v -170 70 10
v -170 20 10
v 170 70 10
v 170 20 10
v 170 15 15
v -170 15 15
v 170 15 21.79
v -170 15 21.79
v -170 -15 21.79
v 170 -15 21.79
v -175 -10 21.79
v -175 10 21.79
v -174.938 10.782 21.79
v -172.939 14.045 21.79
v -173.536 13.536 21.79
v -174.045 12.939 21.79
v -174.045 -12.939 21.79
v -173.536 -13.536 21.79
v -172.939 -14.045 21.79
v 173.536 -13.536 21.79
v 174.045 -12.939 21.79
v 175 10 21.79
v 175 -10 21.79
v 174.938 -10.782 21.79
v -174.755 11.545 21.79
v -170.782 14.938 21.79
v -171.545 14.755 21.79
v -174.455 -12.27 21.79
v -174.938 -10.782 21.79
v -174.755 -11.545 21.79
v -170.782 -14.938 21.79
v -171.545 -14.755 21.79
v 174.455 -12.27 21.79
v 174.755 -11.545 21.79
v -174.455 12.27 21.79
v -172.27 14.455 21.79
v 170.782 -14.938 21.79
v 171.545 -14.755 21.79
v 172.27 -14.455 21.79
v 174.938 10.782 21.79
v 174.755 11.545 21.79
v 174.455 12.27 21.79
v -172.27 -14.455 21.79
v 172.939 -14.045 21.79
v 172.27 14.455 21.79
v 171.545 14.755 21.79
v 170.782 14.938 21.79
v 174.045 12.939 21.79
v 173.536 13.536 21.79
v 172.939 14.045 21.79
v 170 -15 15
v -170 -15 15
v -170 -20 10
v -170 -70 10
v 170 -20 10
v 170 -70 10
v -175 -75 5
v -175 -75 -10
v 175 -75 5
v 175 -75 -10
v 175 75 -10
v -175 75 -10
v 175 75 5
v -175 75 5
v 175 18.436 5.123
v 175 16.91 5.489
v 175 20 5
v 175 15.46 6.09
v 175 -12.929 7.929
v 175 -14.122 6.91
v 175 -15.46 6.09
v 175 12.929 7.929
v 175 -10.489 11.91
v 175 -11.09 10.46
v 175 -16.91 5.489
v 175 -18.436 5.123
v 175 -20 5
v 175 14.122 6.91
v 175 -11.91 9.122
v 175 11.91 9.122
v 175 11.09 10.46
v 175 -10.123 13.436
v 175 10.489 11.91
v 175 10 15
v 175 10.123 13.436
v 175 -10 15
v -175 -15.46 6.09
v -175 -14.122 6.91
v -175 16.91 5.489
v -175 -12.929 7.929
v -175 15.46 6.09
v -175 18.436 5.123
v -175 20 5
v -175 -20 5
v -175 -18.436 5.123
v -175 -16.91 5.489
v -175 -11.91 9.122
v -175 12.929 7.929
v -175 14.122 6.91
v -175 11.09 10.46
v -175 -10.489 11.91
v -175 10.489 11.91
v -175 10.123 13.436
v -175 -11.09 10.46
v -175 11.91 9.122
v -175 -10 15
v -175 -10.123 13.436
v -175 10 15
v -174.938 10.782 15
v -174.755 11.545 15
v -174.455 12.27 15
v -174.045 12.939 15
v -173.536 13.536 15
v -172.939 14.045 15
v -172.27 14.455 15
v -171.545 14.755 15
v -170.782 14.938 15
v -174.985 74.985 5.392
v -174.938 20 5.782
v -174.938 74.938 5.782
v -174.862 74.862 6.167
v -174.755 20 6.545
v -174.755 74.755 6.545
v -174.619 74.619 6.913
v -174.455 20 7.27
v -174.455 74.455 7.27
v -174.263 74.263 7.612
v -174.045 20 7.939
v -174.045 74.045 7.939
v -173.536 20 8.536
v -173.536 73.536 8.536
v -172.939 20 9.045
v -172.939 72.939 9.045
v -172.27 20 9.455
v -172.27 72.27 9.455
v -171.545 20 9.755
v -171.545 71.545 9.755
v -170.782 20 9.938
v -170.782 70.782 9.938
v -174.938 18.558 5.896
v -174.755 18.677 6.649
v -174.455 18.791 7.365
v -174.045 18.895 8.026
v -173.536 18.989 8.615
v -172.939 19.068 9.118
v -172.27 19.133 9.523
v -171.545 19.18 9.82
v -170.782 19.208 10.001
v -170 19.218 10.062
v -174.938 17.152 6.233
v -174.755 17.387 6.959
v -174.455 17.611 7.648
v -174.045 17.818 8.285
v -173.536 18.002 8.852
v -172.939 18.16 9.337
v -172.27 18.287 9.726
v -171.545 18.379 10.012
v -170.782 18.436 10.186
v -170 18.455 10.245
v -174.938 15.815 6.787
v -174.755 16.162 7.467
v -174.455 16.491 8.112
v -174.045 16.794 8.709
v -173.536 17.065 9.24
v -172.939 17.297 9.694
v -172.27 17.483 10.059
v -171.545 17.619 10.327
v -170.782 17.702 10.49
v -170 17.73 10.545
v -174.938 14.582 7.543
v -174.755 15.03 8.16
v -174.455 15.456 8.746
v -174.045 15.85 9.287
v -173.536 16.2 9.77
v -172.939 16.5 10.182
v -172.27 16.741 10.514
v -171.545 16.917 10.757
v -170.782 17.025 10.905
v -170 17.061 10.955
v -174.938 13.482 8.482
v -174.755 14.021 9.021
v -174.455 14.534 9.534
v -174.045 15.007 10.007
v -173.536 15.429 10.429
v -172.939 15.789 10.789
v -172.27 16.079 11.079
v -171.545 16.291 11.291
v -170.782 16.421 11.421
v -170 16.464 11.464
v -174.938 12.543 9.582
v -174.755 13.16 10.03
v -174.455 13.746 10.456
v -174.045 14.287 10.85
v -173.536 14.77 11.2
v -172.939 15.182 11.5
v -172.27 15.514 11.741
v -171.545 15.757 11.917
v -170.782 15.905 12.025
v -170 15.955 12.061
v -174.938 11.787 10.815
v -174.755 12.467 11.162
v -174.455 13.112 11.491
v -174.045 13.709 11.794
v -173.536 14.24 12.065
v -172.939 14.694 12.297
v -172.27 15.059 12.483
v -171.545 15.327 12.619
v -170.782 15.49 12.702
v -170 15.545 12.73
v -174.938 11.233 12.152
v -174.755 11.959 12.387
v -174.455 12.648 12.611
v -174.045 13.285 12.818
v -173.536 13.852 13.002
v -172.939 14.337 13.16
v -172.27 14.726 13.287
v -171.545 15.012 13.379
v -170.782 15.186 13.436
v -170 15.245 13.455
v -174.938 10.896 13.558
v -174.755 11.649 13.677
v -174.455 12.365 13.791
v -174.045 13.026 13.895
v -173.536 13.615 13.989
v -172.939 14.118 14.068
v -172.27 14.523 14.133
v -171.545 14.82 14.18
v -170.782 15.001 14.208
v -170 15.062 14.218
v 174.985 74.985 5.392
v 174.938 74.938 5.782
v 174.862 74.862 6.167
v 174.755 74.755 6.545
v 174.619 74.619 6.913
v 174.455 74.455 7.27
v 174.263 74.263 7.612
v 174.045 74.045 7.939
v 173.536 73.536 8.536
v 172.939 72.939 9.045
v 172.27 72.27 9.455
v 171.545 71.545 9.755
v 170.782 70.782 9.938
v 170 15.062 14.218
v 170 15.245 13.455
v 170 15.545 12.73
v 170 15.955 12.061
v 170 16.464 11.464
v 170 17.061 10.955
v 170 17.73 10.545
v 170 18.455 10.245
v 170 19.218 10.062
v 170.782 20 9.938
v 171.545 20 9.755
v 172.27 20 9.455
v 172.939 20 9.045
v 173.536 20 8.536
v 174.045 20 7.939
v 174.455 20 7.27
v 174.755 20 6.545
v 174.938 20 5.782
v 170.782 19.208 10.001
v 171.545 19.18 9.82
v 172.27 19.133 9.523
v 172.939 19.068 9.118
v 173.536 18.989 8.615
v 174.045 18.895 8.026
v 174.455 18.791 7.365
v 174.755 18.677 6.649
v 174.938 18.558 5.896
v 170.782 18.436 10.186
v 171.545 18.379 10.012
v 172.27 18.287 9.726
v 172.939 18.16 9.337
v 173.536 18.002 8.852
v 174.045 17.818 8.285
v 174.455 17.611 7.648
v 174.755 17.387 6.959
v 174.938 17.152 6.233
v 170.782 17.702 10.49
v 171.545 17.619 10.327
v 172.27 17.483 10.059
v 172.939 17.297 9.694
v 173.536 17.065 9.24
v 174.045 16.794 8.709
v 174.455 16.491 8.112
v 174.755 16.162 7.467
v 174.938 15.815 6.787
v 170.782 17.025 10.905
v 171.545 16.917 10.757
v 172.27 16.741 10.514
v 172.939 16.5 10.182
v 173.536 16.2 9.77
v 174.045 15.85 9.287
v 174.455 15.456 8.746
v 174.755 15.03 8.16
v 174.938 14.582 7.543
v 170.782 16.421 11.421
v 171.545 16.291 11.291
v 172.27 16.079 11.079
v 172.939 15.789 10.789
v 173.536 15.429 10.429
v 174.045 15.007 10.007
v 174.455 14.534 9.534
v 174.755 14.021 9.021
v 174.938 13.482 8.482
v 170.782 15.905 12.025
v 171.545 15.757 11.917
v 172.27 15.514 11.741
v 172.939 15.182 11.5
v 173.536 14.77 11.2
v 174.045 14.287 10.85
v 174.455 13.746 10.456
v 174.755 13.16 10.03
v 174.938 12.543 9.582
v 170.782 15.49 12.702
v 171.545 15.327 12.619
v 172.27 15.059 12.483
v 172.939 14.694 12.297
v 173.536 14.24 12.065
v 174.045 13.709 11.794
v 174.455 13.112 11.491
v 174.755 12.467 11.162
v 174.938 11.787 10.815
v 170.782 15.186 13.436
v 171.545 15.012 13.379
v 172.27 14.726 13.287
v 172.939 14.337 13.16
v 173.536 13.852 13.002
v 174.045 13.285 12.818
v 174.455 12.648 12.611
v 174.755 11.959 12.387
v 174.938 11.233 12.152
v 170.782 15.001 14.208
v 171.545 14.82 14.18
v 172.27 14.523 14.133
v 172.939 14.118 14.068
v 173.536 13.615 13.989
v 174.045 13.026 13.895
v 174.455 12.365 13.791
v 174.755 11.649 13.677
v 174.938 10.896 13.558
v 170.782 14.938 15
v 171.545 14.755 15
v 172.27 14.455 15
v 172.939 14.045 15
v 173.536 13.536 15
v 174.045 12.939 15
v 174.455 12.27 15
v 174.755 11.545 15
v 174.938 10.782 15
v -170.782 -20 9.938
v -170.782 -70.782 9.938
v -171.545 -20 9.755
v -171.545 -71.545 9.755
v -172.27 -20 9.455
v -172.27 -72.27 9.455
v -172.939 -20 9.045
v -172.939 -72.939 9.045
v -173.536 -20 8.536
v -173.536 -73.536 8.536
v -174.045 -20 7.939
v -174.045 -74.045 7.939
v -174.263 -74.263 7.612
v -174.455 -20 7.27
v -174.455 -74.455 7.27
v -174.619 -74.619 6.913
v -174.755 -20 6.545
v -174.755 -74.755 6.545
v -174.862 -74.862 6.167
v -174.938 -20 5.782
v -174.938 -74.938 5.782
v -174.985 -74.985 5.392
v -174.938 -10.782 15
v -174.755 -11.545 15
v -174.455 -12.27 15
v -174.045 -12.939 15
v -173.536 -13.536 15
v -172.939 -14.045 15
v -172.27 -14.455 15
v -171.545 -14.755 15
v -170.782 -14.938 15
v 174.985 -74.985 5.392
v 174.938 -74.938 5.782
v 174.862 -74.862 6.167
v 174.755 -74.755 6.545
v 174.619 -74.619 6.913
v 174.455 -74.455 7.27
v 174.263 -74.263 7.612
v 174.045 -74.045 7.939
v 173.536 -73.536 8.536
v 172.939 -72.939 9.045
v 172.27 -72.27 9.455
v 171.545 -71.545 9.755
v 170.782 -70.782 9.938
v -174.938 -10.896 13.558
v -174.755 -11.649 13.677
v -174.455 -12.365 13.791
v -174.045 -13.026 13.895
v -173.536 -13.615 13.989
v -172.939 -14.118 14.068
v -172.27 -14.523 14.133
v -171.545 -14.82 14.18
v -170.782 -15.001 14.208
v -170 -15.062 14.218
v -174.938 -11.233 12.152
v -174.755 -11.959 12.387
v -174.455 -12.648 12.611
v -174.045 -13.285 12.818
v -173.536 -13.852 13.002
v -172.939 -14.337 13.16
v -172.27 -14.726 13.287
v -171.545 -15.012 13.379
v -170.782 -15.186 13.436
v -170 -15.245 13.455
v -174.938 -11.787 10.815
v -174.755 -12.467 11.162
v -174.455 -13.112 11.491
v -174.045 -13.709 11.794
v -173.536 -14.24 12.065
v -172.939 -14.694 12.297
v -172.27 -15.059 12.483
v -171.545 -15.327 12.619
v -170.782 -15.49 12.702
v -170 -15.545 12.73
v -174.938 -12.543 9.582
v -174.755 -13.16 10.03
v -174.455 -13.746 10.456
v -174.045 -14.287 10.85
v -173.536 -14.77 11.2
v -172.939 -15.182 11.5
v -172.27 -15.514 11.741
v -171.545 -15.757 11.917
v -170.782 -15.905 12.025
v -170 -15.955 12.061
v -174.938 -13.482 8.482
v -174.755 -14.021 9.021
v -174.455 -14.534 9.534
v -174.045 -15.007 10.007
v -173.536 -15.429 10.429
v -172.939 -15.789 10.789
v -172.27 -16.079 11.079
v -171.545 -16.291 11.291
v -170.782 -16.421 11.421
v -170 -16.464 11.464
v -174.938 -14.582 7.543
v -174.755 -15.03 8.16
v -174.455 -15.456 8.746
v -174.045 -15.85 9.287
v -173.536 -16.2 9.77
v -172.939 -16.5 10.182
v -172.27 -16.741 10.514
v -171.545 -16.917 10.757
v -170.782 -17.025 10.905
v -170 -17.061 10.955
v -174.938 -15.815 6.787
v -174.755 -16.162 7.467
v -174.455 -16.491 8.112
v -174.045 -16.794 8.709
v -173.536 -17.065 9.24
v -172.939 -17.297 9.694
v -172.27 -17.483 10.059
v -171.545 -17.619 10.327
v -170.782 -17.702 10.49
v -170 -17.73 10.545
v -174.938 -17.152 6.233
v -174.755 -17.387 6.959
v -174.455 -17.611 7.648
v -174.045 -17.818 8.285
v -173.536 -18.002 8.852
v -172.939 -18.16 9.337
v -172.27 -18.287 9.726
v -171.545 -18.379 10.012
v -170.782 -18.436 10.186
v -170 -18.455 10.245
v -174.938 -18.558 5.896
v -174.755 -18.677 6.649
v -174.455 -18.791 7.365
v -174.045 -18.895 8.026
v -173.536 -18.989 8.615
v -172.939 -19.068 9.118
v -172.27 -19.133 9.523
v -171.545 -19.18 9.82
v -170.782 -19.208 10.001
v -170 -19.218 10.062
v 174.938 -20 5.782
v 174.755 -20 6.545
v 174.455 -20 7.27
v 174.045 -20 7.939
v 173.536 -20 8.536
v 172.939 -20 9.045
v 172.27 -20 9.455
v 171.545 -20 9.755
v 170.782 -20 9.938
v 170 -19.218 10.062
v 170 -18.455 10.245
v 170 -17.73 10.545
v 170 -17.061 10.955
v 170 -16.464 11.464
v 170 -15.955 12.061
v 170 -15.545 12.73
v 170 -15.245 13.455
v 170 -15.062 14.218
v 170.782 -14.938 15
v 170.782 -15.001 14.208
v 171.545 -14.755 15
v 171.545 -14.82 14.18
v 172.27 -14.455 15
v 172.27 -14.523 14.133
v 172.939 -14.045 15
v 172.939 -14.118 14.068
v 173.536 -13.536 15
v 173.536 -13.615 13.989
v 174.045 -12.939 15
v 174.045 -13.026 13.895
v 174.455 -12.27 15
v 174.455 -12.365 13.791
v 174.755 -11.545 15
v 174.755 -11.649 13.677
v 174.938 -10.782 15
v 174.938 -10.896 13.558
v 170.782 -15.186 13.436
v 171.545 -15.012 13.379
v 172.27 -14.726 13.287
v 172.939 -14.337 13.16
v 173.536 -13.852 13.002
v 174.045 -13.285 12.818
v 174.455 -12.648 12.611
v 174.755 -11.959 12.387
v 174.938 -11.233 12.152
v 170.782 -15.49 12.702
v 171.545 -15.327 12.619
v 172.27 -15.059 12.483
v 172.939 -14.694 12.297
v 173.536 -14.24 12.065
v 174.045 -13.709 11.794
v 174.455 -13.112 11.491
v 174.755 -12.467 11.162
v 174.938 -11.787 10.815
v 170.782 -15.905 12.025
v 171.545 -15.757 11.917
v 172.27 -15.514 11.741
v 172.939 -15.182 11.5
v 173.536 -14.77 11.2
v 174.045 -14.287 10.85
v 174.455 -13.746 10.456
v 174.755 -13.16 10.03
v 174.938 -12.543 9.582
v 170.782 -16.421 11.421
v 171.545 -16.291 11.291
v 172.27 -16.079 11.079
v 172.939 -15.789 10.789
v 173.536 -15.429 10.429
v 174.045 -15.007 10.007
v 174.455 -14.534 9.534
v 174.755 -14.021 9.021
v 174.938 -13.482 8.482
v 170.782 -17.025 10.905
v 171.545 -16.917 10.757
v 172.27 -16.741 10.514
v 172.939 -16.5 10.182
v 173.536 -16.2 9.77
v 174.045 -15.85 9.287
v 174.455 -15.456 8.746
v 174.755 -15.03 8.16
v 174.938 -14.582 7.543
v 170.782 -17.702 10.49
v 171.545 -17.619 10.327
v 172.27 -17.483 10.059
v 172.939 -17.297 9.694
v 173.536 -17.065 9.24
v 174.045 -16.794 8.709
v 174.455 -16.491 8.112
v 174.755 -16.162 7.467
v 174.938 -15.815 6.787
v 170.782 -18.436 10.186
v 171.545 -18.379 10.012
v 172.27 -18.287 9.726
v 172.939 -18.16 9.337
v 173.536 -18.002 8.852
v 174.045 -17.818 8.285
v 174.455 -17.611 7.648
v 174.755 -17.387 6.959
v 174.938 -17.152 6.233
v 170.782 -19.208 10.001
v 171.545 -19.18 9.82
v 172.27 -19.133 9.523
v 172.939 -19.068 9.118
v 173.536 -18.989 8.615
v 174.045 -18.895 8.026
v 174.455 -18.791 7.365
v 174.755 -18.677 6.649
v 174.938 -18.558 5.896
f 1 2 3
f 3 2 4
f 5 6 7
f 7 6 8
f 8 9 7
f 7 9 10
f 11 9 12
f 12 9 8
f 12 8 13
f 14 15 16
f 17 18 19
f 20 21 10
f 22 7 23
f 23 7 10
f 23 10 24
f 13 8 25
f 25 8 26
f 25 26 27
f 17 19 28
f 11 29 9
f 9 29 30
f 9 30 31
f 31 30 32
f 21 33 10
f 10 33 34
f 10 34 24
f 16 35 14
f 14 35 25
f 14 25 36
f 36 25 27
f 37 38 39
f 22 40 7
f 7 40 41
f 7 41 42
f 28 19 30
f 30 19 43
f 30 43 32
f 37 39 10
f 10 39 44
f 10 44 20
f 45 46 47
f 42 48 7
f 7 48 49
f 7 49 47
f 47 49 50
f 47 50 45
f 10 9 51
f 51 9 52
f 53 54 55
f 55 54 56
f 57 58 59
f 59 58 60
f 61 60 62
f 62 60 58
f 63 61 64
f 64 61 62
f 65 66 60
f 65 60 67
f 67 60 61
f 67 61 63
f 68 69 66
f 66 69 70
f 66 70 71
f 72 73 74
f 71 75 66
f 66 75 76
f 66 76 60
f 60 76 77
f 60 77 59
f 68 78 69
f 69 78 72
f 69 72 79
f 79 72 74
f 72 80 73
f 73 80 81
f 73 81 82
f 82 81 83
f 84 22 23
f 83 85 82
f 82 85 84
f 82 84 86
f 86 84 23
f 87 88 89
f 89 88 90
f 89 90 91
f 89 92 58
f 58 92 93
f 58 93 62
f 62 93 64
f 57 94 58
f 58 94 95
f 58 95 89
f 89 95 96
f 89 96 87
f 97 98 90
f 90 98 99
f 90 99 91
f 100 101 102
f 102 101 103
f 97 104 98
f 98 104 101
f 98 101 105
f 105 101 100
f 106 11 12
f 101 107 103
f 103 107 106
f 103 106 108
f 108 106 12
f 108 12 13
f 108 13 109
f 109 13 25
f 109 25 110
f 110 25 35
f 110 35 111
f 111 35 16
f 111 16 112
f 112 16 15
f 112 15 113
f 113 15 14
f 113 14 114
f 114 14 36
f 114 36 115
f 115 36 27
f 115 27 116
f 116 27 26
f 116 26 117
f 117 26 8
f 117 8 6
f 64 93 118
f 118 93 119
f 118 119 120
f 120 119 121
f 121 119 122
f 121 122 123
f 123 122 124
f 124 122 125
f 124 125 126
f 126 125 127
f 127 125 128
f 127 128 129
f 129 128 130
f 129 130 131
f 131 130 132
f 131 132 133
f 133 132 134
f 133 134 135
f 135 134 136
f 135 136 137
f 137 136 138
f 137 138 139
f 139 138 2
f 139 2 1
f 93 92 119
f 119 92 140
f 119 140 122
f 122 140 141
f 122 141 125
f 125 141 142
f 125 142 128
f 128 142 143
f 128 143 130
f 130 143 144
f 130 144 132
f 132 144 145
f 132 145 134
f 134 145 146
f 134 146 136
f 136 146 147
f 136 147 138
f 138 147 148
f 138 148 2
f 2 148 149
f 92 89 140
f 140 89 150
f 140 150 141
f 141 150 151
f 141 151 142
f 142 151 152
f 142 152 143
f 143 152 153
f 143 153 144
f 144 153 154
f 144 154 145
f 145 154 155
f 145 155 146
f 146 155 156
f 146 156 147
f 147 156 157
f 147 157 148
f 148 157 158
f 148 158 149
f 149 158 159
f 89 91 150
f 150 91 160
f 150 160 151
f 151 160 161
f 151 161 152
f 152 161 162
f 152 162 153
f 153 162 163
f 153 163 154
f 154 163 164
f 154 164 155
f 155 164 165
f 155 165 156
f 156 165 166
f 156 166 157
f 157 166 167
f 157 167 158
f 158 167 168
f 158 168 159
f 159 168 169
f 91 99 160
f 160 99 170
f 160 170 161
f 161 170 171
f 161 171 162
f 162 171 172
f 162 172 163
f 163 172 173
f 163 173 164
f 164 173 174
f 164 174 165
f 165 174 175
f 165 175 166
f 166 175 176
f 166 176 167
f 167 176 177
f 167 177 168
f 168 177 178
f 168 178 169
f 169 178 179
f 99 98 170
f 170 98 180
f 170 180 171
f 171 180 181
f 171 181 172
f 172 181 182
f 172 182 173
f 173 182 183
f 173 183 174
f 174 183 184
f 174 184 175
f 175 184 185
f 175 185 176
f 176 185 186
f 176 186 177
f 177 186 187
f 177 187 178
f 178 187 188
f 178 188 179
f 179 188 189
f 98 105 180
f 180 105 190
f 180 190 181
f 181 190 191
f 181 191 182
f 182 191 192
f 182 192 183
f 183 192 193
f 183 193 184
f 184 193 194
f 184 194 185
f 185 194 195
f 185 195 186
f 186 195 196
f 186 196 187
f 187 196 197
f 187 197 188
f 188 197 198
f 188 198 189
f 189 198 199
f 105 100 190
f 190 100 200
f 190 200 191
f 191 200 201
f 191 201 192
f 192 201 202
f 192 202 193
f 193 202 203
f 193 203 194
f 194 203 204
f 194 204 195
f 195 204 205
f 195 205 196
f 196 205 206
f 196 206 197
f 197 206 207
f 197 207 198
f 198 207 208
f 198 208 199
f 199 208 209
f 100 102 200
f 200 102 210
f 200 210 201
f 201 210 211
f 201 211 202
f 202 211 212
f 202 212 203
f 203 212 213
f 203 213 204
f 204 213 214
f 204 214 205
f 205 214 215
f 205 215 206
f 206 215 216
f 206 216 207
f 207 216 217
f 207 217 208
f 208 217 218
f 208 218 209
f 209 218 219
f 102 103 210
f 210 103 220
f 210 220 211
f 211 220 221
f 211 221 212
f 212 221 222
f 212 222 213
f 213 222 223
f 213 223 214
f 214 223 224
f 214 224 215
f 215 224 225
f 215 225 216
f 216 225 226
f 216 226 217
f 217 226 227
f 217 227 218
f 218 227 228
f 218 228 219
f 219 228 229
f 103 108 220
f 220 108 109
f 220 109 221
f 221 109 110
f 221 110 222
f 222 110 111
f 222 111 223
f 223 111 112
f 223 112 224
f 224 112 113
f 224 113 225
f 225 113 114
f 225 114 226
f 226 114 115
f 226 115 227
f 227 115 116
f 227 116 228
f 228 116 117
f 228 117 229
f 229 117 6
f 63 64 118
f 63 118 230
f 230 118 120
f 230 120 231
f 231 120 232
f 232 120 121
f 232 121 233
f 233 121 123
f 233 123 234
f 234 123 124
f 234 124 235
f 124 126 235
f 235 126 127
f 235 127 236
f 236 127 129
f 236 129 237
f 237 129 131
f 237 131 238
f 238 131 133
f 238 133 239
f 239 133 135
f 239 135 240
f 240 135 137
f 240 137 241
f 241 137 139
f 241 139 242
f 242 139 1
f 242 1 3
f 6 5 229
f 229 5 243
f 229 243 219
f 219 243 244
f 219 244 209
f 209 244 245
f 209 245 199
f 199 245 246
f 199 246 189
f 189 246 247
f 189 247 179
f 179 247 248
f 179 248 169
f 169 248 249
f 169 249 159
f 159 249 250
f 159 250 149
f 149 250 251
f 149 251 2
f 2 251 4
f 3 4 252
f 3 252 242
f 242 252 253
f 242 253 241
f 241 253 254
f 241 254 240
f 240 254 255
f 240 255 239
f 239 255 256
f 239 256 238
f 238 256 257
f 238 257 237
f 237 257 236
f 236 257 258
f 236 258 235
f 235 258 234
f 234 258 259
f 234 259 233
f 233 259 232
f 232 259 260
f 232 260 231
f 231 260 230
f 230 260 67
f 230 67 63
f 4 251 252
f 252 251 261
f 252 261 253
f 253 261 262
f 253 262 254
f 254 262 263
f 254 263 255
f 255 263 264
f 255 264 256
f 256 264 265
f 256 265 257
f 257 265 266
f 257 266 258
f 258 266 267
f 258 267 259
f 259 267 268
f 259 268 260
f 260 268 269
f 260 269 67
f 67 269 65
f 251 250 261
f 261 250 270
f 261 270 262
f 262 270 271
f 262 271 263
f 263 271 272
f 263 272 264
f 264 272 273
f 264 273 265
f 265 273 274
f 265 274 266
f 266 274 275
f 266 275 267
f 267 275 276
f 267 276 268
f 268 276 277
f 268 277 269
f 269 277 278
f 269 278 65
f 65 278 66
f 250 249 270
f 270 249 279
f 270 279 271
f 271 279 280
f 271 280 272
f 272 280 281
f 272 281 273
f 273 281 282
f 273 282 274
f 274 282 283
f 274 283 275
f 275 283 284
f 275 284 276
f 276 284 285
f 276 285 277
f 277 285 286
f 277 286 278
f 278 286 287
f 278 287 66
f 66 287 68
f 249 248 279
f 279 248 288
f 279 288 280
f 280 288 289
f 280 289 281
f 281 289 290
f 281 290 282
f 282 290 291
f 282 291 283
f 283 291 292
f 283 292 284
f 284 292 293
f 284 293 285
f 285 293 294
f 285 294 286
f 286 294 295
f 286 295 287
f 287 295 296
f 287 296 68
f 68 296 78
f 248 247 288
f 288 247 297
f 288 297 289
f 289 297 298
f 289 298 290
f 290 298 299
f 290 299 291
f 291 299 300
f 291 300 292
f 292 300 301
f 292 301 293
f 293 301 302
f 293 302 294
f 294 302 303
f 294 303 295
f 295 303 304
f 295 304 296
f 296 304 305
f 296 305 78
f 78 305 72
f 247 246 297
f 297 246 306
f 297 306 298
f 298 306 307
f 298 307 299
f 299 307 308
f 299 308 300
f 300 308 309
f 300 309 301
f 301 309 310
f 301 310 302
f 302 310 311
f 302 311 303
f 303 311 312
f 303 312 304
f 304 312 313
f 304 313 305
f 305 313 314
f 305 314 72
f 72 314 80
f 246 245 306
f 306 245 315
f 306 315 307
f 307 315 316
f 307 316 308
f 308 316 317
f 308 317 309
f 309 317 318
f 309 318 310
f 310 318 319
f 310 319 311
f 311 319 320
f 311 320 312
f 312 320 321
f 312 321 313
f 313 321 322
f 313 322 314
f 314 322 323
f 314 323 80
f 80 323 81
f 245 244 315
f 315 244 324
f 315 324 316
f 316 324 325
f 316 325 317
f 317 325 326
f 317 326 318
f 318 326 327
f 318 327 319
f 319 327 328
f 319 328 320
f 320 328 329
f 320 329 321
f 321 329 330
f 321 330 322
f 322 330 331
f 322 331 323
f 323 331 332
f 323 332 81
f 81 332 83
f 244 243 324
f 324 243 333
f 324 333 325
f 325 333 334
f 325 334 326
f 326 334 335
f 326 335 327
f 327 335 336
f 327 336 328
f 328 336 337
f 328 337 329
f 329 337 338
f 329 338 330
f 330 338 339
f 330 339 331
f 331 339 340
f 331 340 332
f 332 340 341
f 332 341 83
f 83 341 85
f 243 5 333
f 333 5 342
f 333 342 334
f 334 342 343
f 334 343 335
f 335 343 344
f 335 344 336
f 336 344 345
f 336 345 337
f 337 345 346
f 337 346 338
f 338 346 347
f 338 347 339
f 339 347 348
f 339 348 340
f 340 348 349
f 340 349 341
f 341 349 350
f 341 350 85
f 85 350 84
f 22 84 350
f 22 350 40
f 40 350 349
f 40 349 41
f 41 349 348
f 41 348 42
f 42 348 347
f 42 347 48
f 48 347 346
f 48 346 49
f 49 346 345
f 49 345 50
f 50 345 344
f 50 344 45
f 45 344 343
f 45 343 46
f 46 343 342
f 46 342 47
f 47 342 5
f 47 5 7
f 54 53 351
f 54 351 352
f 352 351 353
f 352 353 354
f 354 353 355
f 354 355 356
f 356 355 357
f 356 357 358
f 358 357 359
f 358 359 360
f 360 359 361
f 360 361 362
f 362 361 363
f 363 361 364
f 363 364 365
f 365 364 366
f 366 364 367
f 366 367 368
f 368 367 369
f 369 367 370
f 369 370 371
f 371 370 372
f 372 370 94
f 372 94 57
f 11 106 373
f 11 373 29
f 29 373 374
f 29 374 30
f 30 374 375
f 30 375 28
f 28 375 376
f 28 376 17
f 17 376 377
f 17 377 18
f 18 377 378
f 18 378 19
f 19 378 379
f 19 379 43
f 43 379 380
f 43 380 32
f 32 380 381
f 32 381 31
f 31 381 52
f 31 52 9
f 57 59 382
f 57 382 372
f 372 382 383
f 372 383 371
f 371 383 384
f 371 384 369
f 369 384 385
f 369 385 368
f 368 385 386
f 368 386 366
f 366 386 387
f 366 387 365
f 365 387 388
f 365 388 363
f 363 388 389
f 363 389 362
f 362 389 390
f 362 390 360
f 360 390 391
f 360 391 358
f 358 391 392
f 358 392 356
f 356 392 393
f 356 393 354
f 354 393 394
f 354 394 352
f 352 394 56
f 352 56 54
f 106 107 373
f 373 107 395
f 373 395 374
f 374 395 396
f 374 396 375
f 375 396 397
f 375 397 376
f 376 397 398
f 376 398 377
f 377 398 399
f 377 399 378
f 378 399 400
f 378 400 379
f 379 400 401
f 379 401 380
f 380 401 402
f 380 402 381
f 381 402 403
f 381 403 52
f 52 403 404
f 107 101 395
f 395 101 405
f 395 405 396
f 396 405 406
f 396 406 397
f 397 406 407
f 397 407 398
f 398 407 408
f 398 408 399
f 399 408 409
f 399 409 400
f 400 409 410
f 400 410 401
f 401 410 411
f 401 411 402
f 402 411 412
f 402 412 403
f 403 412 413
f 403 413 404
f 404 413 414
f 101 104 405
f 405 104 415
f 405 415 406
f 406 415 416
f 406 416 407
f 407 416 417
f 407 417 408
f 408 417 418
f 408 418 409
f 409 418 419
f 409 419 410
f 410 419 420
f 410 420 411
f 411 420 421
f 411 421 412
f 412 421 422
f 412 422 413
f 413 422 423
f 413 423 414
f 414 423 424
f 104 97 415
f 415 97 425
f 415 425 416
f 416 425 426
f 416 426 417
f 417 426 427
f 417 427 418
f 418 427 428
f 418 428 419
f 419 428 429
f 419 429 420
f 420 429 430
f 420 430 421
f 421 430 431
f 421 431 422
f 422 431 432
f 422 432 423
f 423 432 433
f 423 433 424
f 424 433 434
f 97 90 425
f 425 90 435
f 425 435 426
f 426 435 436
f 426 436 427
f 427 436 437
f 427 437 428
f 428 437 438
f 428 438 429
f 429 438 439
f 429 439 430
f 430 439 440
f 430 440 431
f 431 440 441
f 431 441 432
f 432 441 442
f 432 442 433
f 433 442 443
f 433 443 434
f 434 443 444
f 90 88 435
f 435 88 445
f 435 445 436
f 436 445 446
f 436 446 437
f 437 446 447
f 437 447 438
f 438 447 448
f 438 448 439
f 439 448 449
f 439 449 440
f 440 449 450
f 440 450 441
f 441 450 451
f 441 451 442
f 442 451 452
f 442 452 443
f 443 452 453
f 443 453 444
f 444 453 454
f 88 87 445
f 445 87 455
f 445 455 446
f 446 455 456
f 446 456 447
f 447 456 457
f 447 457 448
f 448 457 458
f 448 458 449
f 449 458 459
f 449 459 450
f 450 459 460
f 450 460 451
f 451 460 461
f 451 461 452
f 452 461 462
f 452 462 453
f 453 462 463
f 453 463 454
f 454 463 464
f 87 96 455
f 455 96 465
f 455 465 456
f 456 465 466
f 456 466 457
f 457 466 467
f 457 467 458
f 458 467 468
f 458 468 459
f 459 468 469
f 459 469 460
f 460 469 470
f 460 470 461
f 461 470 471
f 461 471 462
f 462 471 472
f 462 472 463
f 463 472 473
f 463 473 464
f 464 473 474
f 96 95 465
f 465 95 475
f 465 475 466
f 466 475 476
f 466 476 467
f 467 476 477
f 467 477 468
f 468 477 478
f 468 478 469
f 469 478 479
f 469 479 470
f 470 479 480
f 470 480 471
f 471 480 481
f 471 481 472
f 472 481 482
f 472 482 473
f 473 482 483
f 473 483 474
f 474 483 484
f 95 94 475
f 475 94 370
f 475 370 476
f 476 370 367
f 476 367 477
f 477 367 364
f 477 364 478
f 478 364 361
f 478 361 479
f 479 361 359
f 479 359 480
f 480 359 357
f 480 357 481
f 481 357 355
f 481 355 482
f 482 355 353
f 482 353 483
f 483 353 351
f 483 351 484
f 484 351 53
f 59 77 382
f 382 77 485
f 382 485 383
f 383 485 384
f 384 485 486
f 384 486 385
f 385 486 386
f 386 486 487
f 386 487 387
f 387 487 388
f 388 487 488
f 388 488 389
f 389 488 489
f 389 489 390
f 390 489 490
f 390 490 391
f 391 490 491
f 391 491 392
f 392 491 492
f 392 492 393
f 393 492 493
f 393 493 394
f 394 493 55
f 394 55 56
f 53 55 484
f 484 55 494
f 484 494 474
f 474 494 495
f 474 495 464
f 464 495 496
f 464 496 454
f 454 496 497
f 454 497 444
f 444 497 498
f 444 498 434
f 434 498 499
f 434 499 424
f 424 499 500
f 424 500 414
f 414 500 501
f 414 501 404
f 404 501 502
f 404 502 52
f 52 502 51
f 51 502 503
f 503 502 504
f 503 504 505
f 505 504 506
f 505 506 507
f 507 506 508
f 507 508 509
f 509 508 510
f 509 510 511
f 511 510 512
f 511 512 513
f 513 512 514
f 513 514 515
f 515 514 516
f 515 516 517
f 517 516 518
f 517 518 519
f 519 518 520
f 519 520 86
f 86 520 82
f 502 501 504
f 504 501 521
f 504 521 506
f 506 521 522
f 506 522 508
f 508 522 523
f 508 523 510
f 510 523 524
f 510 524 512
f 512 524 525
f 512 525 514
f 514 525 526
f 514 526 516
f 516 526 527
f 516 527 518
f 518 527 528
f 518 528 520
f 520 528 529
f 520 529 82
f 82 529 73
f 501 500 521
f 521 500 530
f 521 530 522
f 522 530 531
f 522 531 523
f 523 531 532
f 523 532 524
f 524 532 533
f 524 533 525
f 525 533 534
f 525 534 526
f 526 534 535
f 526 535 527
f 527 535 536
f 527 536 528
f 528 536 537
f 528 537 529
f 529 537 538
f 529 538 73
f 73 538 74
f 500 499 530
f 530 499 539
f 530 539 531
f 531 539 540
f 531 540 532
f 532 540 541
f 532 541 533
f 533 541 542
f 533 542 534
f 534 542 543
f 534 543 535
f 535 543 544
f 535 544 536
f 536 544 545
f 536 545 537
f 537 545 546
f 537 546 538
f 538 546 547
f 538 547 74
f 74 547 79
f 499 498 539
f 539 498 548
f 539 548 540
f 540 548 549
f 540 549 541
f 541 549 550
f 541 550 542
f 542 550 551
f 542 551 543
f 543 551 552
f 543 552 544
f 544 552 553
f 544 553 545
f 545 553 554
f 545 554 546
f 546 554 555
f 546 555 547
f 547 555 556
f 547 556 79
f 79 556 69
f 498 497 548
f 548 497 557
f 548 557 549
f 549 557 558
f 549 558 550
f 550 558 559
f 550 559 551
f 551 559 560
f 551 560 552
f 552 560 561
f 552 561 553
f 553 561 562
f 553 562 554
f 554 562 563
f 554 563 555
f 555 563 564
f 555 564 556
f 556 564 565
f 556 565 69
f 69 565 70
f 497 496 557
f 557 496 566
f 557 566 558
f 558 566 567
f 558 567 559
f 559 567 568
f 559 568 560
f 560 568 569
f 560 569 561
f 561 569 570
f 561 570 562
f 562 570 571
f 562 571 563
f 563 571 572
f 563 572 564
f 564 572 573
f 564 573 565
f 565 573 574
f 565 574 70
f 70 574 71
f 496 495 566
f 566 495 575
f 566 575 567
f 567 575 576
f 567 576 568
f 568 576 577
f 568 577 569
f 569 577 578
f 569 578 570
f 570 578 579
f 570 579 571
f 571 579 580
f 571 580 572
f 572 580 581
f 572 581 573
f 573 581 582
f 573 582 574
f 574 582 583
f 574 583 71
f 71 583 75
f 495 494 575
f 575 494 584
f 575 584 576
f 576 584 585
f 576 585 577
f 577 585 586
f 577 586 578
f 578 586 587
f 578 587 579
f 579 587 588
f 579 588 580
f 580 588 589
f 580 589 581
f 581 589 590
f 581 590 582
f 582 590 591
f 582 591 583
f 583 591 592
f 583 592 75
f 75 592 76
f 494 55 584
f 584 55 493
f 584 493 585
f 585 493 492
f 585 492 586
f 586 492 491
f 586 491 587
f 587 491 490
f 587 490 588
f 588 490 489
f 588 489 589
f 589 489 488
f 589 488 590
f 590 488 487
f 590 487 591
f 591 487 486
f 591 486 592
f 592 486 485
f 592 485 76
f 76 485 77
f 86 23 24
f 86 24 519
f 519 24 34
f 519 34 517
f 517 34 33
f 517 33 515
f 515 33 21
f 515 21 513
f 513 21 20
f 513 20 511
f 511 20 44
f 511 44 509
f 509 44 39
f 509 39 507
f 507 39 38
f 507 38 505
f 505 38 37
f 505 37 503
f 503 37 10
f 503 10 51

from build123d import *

# Parameters (mm, degrees)
SALIENTE_EXTRUIR1_DEPTH = 175
REDONDEO1_R             = 5


with BuildPart() as part:
    # Croquis1 → Saliente-Extruir1 (new, symmetric)
    with BuildSketch(Plane(origin=(0, 0, 0), x_dir=(0, 0, -1), z_dir=(1, 0, 0))):
        Polygon((-21.789612973, 0), (-21.789612973, 15), (-10, 15), (-10, 75), (10, 75), (10, -75), (-10, -75), (-10, -15), (-21.789612973, -15), align=None)
    extrude(amount=SALIENTE_EXTRUIR1_DEPTH, both=True)

    # Redondeo1
    redondeo1_edges = [part.edges().sort_by_distance(p)[0] for p in [
        (-175, -45, 10),
        (-175, -15, 15.894806486),
        (-175, 15, 15.894806486),
        (-175, 45, 10),
        (0, 75, 10),
        (0, -75, 10),
        (0, -15, 10),
        (0, 15, 10),
        (175, -15, 15.894806486),
        (175, -45, 10),
        (175, 45, 10),
        (175, 15, 15.894806486),
    ]]
    fillet(redondeo1_edges, radius=REDONDEO1_R)


solid = part.part
